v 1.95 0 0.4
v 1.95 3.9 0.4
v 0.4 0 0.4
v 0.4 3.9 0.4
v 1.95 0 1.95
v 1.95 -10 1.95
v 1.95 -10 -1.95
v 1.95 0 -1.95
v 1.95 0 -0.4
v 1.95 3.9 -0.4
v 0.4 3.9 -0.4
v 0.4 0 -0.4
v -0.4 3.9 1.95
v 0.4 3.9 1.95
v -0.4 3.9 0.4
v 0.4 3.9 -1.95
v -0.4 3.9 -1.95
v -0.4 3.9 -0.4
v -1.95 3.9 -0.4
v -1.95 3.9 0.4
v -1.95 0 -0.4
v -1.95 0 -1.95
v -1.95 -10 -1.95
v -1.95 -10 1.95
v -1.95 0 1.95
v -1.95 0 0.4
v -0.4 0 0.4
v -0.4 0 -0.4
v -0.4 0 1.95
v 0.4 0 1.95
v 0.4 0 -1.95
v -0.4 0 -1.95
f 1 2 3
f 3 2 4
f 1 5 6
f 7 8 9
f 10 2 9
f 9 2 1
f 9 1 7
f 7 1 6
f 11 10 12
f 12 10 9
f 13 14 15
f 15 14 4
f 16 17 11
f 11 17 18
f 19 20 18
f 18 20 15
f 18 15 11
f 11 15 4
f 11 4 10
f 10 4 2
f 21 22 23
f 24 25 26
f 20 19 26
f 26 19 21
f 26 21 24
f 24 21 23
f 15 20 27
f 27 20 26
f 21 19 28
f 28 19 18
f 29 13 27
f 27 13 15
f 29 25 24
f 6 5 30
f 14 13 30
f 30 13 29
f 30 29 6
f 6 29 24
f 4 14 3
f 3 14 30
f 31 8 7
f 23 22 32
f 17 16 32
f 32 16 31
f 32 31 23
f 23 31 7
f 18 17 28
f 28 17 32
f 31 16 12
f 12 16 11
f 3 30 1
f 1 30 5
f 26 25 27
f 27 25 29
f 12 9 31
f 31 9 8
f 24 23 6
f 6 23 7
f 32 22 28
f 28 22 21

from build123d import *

# Parameters (mm, degrees)
SKETCH_5_W      = 0.8
SKETCH_5_H      = 3.9
SKETCH_5_W_2    = 3.9
SKETCH_5_H_2    = 0.8
EXTRUDE_1_DEPTH = 3.9
SKETCH_6_W      = 3.9
SKETCH_6_H      = 3.9
EXTRUDE_2_DEPTH = 10


with BuildPart() as part:
    # 草图5 → 凸台-拉伸1 (new body)
    with BuildSketch(Plane(origin=(0, 0, 0), x_dir=(-1, 0, 0), z_dir=(0, 1, 0))):
        Rectangle(SKETCH_5_W, SKETCH_5_H)
        Rectangle(SKETCH_5_W_2, SKETCH_5_H_2)
    extrude(amount=EXTRUDE_1_DEPTH)

    # 草图6 → 凸台-拉伸2 (add)
    with BuildSketch(Plane.XZ):
        Rectangle(SKETCH_6_W, SKETCH_6_H)
    extrude(amount=EXTRUDE_2_DEPTH)


solid = part.part
